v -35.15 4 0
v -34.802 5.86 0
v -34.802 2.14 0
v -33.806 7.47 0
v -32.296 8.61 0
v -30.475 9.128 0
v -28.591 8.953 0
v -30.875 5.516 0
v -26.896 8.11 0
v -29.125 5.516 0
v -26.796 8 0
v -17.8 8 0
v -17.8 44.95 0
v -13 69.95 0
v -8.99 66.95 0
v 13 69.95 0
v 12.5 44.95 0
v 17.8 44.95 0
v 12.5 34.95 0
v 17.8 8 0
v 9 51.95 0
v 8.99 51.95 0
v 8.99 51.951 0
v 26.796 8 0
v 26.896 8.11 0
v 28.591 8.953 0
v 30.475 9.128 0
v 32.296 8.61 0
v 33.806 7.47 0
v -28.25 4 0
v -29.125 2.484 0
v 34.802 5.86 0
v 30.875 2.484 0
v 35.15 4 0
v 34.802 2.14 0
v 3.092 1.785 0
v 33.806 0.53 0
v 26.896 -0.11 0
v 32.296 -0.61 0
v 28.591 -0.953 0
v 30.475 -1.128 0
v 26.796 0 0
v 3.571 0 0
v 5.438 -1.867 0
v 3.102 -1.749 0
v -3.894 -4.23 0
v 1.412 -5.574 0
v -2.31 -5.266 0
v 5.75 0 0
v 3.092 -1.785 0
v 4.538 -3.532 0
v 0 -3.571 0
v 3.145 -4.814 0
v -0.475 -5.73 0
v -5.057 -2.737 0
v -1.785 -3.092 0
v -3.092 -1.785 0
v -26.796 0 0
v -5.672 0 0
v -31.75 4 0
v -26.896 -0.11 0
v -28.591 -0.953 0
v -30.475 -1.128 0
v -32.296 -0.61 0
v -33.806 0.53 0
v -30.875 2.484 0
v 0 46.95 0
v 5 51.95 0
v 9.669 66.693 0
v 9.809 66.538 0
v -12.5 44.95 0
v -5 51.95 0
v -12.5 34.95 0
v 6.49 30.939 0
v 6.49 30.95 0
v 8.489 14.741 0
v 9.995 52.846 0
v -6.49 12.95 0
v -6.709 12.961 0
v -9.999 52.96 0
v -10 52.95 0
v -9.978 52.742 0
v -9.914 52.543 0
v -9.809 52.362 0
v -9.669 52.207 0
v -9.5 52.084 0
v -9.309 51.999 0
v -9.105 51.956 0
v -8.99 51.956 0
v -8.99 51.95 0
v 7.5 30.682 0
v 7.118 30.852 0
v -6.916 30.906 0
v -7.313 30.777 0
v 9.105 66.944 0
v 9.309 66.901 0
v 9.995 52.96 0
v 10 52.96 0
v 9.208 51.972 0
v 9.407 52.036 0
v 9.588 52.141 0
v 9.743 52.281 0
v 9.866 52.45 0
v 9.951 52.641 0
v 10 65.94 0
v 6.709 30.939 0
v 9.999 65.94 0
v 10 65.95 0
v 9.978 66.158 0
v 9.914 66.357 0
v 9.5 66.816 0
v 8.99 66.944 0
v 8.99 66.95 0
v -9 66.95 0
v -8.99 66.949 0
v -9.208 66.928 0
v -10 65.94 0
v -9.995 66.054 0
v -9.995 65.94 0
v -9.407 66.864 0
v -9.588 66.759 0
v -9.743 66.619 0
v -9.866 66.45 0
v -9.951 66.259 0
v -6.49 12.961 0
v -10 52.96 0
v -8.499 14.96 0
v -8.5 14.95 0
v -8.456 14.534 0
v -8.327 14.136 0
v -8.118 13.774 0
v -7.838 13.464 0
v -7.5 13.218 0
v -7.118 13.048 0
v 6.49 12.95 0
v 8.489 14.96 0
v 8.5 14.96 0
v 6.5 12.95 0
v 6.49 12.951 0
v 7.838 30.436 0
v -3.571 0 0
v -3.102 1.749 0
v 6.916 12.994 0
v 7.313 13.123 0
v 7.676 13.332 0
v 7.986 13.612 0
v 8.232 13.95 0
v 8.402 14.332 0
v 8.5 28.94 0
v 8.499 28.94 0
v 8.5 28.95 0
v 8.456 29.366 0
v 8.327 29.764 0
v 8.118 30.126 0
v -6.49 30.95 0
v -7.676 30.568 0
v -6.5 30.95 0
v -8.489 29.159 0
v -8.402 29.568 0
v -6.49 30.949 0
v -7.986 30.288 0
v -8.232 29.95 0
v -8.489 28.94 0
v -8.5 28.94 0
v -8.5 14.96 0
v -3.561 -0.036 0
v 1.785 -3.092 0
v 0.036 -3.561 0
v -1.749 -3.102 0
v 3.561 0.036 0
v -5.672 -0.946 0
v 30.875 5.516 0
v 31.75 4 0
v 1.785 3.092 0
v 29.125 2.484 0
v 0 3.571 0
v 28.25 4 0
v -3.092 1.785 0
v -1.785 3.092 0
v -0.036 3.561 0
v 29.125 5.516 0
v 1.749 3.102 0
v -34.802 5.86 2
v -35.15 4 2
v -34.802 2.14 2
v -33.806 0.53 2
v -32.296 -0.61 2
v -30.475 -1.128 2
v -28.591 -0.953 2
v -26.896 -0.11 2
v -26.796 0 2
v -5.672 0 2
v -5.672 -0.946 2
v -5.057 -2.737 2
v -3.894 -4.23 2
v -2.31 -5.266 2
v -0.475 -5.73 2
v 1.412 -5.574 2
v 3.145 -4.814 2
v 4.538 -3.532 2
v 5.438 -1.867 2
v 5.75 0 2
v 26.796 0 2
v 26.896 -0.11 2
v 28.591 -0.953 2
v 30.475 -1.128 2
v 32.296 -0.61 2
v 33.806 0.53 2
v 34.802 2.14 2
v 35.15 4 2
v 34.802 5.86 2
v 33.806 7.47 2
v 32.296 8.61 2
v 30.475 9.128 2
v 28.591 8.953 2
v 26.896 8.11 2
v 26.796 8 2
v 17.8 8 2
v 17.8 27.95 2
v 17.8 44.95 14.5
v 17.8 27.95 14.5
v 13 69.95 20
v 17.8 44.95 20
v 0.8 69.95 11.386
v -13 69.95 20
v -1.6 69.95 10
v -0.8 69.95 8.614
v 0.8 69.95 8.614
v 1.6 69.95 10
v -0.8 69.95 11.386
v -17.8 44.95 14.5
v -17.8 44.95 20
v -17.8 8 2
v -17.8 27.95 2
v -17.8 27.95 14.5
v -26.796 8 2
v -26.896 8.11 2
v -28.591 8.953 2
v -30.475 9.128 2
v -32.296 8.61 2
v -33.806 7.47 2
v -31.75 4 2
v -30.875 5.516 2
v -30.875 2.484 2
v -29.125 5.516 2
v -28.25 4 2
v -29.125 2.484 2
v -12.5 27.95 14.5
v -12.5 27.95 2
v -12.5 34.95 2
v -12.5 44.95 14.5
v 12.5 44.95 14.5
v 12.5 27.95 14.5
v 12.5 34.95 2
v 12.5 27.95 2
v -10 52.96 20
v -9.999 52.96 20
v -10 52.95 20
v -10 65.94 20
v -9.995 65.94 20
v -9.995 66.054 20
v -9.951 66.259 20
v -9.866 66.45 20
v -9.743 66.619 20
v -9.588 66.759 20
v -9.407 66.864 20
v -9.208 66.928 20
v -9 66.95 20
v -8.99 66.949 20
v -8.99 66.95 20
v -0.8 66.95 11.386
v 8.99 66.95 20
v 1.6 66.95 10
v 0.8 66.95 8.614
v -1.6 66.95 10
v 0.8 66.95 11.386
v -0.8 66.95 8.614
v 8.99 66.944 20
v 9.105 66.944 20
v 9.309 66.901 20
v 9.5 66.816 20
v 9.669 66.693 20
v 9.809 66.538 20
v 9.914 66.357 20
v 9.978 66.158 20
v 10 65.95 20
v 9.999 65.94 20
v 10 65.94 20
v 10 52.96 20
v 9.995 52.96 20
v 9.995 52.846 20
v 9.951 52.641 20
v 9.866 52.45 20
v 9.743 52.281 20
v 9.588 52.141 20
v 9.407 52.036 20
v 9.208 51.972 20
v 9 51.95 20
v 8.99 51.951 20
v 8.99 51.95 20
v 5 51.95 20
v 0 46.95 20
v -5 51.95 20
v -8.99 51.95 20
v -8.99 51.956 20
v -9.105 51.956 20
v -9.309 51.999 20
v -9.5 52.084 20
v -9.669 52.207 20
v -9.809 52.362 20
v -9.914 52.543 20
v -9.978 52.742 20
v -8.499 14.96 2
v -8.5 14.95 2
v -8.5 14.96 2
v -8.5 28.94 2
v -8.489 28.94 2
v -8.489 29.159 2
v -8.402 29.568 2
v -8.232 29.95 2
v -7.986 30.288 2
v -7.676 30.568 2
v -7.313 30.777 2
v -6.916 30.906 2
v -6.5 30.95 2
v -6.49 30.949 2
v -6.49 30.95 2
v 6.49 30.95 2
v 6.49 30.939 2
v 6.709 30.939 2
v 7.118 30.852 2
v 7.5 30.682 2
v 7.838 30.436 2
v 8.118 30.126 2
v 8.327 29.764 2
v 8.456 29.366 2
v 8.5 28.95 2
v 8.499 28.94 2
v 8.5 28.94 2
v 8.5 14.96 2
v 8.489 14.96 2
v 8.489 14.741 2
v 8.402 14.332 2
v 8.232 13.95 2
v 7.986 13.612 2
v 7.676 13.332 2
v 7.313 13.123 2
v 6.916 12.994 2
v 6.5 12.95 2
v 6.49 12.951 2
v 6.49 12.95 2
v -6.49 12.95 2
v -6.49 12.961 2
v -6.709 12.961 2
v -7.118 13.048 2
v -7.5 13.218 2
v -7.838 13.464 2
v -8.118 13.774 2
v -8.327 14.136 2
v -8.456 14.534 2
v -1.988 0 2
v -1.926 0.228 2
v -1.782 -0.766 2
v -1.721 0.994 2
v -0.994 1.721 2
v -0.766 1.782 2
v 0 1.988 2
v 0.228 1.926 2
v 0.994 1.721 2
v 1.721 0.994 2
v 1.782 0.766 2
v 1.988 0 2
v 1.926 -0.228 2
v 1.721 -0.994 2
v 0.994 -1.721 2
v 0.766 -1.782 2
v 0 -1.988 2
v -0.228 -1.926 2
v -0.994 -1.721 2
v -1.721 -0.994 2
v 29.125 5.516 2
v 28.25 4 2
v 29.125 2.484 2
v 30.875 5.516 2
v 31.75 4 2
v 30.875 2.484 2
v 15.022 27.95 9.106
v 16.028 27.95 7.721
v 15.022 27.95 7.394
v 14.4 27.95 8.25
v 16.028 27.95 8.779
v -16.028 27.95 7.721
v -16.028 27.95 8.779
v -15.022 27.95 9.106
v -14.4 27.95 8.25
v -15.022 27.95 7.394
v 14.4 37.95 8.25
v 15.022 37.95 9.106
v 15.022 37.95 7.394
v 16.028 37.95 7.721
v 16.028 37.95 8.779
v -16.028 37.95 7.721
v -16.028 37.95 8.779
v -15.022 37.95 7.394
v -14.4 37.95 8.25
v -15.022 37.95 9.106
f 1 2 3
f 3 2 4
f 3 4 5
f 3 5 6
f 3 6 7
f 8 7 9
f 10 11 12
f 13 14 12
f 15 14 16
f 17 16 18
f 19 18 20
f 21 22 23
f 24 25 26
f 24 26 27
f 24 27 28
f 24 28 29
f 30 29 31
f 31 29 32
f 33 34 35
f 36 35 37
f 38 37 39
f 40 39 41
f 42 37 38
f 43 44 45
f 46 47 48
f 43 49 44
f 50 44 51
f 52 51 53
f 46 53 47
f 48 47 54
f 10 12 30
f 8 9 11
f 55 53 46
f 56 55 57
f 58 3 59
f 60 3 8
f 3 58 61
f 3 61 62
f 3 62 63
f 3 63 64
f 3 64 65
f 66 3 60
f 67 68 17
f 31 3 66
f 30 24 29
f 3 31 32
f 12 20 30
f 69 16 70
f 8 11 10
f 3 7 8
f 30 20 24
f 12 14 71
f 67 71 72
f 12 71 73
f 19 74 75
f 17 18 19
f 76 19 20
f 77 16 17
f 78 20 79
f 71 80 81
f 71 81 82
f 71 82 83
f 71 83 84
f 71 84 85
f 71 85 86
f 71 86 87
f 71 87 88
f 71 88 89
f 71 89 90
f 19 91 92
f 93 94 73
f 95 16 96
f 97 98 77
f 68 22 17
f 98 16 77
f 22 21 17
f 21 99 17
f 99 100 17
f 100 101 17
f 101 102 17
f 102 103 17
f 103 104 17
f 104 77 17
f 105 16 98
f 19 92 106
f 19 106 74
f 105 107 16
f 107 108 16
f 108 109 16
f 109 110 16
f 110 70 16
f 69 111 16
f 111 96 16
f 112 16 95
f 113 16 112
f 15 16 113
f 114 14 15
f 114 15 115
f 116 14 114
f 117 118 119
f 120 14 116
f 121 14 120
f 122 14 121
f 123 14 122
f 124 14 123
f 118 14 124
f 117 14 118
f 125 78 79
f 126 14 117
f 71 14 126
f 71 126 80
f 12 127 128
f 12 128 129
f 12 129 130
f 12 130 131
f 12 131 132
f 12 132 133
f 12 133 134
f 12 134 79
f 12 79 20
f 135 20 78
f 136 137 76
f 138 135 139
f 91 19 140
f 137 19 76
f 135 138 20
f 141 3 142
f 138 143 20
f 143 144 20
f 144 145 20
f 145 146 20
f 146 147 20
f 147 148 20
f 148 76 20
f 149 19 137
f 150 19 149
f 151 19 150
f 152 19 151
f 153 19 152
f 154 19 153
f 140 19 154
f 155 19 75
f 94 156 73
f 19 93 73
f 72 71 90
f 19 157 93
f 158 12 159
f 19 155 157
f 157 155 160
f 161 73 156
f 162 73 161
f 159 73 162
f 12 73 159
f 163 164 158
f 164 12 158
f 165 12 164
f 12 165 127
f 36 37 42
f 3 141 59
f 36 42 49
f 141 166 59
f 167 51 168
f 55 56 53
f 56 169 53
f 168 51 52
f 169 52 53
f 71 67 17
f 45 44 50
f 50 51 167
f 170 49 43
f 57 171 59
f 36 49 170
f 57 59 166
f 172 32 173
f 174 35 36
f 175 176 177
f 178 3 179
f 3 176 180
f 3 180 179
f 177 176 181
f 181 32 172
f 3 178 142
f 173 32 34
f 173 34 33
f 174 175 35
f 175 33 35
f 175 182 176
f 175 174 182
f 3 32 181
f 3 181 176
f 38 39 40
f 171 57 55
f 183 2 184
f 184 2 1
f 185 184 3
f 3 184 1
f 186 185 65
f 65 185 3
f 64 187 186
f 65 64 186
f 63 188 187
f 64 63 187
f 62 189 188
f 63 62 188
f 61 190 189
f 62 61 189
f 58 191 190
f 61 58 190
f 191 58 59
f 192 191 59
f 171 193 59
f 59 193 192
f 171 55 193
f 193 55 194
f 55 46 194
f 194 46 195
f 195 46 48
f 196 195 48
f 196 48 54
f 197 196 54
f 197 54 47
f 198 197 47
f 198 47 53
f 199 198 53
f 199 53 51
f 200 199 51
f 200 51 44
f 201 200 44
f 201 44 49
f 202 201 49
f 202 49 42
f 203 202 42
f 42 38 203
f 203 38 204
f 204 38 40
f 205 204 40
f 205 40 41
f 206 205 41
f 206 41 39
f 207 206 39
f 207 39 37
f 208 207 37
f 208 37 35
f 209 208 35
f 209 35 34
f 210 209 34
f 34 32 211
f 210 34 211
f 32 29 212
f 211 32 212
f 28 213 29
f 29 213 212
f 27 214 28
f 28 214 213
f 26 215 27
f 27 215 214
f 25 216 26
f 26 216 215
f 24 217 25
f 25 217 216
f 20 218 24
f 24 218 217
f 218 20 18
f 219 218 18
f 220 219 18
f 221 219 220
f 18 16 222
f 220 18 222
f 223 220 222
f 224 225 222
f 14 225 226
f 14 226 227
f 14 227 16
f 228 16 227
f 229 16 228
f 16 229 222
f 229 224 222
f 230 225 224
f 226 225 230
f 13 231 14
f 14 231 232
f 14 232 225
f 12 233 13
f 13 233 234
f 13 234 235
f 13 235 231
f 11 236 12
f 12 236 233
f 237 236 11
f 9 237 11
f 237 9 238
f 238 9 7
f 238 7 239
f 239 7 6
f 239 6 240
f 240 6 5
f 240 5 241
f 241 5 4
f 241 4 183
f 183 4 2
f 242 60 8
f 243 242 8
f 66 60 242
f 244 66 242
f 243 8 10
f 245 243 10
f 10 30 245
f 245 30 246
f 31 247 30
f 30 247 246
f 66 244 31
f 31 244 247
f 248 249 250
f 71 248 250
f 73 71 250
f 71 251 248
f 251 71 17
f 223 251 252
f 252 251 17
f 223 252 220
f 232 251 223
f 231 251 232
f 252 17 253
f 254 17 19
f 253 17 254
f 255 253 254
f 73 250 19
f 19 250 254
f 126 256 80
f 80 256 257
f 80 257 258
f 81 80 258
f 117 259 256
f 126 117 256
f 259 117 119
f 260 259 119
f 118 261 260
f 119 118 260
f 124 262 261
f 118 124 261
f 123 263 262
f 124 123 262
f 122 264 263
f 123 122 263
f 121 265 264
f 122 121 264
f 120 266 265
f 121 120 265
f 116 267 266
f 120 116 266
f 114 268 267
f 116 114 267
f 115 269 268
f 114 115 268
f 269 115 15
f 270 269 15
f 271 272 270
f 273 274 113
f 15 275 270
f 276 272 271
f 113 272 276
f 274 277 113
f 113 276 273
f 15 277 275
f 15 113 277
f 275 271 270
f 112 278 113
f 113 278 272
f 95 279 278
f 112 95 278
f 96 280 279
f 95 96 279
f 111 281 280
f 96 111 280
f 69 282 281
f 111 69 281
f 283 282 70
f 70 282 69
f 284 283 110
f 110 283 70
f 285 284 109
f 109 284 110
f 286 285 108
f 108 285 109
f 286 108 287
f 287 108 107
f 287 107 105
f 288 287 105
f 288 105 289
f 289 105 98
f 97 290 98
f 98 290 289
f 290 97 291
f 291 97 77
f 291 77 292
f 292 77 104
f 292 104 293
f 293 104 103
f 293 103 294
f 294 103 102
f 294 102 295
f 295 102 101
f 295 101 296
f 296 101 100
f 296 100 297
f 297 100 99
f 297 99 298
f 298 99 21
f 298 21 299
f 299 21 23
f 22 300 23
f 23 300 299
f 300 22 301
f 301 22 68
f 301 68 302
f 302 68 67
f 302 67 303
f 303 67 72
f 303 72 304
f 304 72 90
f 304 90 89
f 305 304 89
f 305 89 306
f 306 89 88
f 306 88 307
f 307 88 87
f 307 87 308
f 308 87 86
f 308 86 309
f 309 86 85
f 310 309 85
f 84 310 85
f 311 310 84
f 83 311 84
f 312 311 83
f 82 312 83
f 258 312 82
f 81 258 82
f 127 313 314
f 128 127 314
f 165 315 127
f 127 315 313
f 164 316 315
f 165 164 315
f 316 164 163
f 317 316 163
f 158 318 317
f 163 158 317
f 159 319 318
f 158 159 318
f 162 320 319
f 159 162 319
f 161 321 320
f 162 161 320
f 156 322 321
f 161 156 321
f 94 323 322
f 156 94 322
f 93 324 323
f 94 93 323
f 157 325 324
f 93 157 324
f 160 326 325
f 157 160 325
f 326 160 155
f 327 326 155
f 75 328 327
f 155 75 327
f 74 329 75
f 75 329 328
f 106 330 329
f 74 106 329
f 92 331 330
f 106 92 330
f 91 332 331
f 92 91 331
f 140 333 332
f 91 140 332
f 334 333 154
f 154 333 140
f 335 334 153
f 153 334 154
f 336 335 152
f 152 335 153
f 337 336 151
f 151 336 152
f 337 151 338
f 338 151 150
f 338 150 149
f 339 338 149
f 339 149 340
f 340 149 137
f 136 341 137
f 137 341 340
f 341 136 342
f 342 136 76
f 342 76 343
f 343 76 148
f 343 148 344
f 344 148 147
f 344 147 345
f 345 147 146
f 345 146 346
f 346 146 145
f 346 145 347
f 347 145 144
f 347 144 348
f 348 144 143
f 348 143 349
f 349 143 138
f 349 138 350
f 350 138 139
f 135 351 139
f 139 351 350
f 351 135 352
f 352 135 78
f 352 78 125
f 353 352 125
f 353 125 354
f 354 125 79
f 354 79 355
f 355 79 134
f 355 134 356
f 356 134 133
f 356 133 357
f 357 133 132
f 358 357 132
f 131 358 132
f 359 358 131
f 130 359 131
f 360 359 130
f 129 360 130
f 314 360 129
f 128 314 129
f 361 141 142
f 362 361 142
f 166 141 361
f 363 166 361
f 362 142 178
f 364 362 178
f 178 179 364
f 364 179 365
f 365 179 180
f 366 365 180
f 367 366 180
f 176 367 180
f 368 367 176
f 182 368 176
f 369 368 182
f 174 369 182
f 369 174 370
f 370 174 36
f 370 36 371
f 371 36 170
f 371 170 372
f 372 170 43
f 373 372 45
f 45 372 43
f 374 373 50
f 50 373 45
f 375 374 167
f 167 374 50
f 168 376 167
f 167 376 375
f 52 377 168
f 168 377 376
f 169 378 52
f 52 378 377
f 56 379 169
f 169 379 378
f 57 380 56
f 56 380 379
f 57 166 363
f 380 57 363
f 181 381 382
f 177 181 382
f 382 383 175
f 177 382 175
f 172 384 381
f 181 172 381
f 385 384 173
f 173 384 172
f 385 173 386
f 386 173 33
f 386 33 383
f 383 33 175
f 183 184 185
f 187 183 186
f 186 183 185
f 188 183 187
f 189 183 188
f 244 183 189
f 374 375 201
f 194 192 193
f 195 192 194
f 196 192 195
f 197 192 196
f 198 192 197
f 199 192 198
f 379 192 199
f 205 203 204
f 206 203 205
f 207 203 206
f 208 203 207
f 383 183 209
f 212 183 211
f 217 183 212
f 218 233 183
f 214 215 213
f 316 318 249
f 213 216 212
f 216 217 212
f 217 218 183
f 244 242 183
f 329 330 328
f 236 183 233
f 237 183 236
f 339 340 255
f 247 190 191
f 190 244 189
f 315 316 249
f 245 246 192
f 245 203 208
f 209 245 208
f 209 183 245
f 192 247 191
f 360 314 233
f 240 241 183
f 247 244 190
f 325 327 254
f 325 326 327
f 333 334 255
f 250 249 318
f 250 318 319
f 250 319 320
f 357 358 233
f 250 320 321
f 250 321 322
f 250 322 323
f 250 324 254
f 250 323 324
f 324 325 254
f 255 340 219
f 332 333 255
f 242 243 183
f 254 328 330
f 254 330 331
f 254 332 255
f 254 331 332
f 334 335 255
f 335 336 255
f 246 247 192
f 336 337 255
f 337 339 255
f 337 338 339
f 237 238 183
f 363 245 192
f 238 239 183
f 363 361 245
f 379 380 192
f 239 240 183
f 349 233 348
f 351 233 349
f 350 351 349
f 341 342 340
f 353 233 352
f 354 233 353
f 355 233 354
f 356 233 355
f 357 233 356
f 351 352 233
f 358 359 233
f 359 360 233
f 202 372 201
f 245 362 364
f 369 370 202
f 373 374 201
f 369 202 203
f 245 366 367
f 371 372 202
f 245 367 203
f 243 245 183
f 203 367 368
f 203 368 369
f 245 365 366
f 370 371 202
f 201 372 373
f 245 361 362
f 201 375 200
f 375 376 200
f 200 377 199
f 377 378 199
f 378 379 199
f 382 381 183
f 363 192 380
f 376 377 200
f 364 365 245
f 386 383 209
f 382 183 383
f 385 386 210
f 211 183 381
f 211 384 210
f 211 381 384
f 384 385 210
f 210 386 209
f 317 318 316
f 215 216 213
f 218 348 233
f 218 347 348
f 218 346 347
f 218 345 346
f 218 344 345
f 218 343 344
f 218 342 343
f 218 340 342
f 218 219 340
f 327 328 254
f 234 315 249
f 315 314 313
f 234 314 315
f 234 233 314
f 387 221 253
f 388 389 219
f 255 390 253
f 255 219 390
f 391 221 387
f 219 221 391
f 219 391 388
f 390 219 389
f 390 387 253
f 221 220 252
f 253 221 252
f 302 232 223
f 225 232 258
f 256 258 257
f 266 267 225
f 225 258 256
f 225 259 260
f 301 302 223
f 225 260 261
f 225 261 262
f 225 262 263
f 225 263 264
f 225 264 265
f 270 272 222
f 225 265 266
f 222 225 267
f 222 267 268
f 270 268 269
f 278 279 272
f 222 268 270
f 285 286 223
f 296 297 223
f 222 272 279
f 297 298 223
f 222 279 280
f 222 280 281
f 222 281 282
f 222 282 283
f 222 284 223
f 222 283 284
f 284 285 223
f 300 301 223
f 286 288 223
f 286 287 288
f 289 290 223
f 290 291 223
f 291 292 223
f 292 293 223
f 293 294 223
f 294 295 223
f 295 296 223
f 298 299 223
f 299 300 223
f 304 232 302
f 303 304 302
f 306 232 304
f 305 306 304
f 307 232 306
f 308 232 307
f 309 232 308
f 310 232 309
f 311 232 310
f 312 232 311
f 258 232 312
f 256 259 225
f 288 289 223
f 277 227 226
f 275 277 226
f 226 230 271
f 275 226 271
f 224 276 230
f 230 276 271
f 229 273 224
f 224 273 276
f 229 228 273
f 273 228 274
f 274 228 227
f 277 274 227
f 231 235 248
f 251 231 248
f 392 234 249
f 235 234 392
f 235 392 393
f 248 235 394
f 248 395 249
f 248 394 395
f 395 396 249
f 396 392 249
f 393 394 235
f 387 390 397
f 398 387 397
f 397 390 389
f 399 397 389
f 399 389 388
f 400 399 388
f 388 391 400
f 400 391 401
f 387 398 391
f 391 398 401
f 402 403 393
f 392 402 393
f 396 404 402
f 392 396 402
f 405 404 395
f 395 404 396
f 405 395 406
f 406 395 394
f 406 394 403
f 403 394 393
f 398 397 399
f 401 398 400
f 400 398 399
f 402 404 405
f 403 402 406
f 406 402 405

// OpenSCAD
// file: thirdparty/RoundedRect.scad
// ********************************
// Copyright 2015 Ethan Smith
// ********************************

include <CornerCutout.scad>

module RoundedRect(x = 10, y = 10, z = 10, radius = 2) {
	translate([-x/2, -y/2]) difference() {
		cube([x, y, z]);
		translate([0,0]) CornerCutout(0, z, radius);
		translate([x,0]) CornerCutout(1, z, radius);
		translate([x,y]) CornerCutout(2, z, radius);
		translate([0,y]) CornerCutout(3, z, radius);
	}
}
// file: thirdparty/CornerCutout.scad
// ********************************
// Copyright 2015 Ethan Smith
// ********************************

module CornerCutout(direction = 0, thickness = 10, radius = 4, extra = 0.4, cutin = 0.01, smooth=30, cylinderExtra = 0) {
	rotate([0,0,direction*90]) difference() {
		translate([-extra,-extra, -extra*2]) cube([radius+extra+cutin, radius+extra+cutin, thickness+extra*4]);
		translate([radius, radius, -extra-cylinderExtra/2]) cylinder(thickness+extra*2+cylinderExtra, radius, radius, $fn=smooth);
	}
}
// main file
include <thirdparty/CornerCutout.scad>;
include <thirdparty/RoundedRect.scad>;

baseThickness = 2;
cornerRadius = 3;

supportArmWidth = 8;
supportArmLength = 30;
supportArmThickness = 2;
supportArmPadExtra = 3.4;
supportArmPadBolt = 3.5;


numSixCountersinkBoltSize = 3.5;
numSixCountersinkHeadDiameter = 7.3;
numSixCountersinkDepth = 2.3;


chainClampBoltDiameter = numSixCountersinkBoltSize;
chainClampBoltExtra = 4;
chainClampBoltMountSideSpace = 1;
chainClampAttachDiameter = chainClampBoltDiameter+chainClampBoltExtra*2;

chainNotchDiameter = 3.5;
chainNotchCurveDiameter = 42;
chainNotchShift = 1;

chainAttachEdge = 2;
chainAttachGap = 0.2;
chainAttachDiameter = chainClampAttachDiameter+chainAttachGap*2+chainAttachEdge*2;
chainAttachThicknessExtra = 1.3;
chainAttachThickness = chainNotchDiameter-chainNotchShift+chainAttachThicknessExtra;
chainAttachLipLength = chainAttachDiameter/2-chainAttachGap;
chainAttachLipHeight = baseThickness+chainNotchShift;
chainAttachTotalHeight = chainAttachThickness+chainAttachLipHeight;

penClampBoltDiameter = 3.2;

penHoleSize = 20;
penClampExtra = 3;
penClampHeight = 20;
penClampWallThickness = 3;
penClampBackingMinThickness = 2;
penClampDimple = 5;
penClampLength = penHoleSize+penClampWallThickness+penClampBackingMinThickness;
penClampWidth = penHoleSize+penClampWallThickness*2;

servoWidth = 25;
servoHeight = 26;
servoThickness = 12.5;
servoTabWidth = 5.3;
servoTabDrop = 7;
servoCutoutEdgeExtra = 4;
servoMountCutoutHeight = 10;
servoTabMountThickness = servoThickness;
servoTabMountLength = servoMountCutoutHeight+servoTabDrop;
servoMountScrewDiameter = 1.8;
servoMountScrewDepth = 10;
servoMountScrewFromInside = 2.8;



baseWidth = servoWidth+servoTabWidth*2;
baseLength = chainClampBoltMountSideSpace+chainAttachDiameter/2+servoHeight+servoMountCutoutHeight;
baseServoMountThickness = servoTabMountThickness+baseThickness;
totalLength = baseLength+penClampLength;

servoCutoutWidth = baseWidth-servoCutoutEdgeExtra*2-servoTabWidth*2;
servoCutoutLength = servoHeight-servoCutoutEdgeExtra*2;

frame();
//chainAttach();
//print();

module print() {
	frame();
	translate([0,0,chainAttachTotalHeight]) rotate([0,180]) chainAttach();
	#translate([-servoWidth/2, baseLength-servoHeight-servoMountCutoutHeight, baseThickness]) cube([servoWidth, servoHeight, servoThickness]);
}

module chainAttach() {
	difference() {
		union() {
			cylinder(chainAttachTotalHeight, chainAttachDiameter/2, chainAttachDiameter/2, $fn=50);
			translate([-chainAttachDiameter/2-0.005, 0,-0.005]) cube([chainAttachDiameter+0.01, chainAttachDiameter/2+0.01, chainAttachThickness]);
		}	
		translate([0,0,chainAttachThickness]) cylinder(baseThickness+1+chainNotchShift, chainAttachDiameter/2-chainAttachEdge, chainAttachDiameter/2-chainAttachEdge);
	
		translate([-chainAttachDiameter/2-1, -chainAttachDiameter/2+chainAttachLipLength, chainAttachThickness+0.01]) cube([chainAttachDiameter+2, chainAttachDiameter-chainAttachLipLength+1, chainAttachLipHeight+1]);

		translate([0,0,-1]) cylinder(chainAttachThickness+2, chainClampBoltDiameter/2, chainClampBoltDiameter/2, $fn=30);

		translate([0, -chainNotchCurveDiameter/2+chainClampBoltDiameter/2+chainNotchDiameter/2, chainAttachThickness-chainNotchDiameter/2+chainNotchShift]) rotate_extrude(convexity = 4) translate([chainNotchCurveDiameter/2, 0, 0]) circle(r = chainNotchDiameter/2, $fn=20);

		translate([-chainAttachDiameter/2, chainAttachDiameter/2]) CornerCutout(3, chainAttachThickness, cornerRadius);
		translate([chainAttachDiameter/2, chainAttachDiameter/2]) CornerCutout(2, chainAttachThickness, cornerRadius);

	}
}

module frame() {
	difference() {
		union() { 
			supportArms();
			attachPoint();
			centerShape();
		}
		translate([0, baseLength+penClampBackingMinThickness, -1]) penClampShape(penHoleSize, penClampHeight+2, penClampDimple);
		
		translate([0, totalLength+1, penClampHeight/2]) rotate([90,0]) cylinder(penClampWallThickness+2, penClampBoltDiameter/2, penClampBoltDiameter/2);
		
		mirror([0,0,1]) counterSunkBolt(baseThickness-numSixCountersinkDepth, numSixCountersinkBoltSize, numSixCountersinkHeadDiameter, numSixCountersinkDepth);

		translate([0, baseLength-servoMountCutoutHeight-servoCutoutLength/2-servoCutoutEdgeExtra, -1]) RoundedRect(servoCutoutWidth, servoCutoutLength, baseThickness+2, 2);
	}
}

module centerShape() {
	translate([-baseWidth/2, 0]) cube([baseWidth, baseLength-servoMountCutoutHeight, baseThickness]);
	translate([-baseWidth/2, baseLength-servoTabMountLength]) servoAttachTab();
	translate([baseWidth/2, baseLength-servoTabMountLength]) mirror([1,0]) servoAttachTab();

	
	translate([-baseWidth/2, baseLength]) linear_extrude(height = penClampHeight) assign(halfSize = (baseWidth-penClampWidth)/2) polygon([[0, 0], [baseWidth, 0], [baseWidth-halfSize, penClampLength], [halfSize, penClampLength]]);
}

module servoAttachTab() {
	difference() {
		cube([servoTabWidth, servoTabMountLength, baseServoMountThickness]);
	
		translate([servoTabWidth-servoMountScrewFromInside, -1, servoThickness/2+baseThickness])  rotate([-90,0]) cylinder(servoMountScrewDepth+1, servoMountScrewDiameter/2, servoMountScrewDiameter/2);

	}
}

module attachPoint() {
	cylinder(baseThickness, chainClampAttachDiameter/2, chainClampAttachDiameter/2);
} 

module supportArms() {
	translate([0,supportArmWidth/2]) {
		supportArm(supportArmWidth, supportArmLength, supportArmThickness, supportArmPadBolt, supportArmPadExtra);

		mirror([1,0]) 
		supportArm(supportArmWidth, supportArmLength, supportArmThickness, supportArmPadBolt, supportArmPadExtra);
	}
}
 
module supportArm(width, length, thickness, boltDiameter, padExtra) {
	difference() {
		union() {
			translate([0, -width/2]) cube([length, width, thickness]);
			translate([length, 0]) cylinder(thickness, boltDiameter/2+padExtra, boltDiameter/2+padExtra);
		}

		translate([length, 0, -1]) cylinder(thickness+2, boltDiameter/2, boltDiameter/2);
	}
}

module penClampShape(size, height, dimpleDepth) {
	translate([0, dimpleDepth]) { 
		assign(length = size-dimpleDepth) translate([0, length/2]) RoundedRect(size, length, height, 1);
		rotate([0,0,45]) assign(diamond = sqrt(((dimpleDepth*2)*(dimpleDepth*2))/2)) translate([-diamond/2, -diamond/2]) cube([diamond, diamond, height]);
	}
}

module counterSunkBolt(boltLength, boltDiameter, headDiameter, headHeight, extra=0.1) {
	translate([0,0,-headHeight-boltLength-extra]) cylinder(boltLength+extra*2, boltDiameter/2, boltDiameter/2);
	translate([0,0,-headHeight]) cylinder(headHeight+extra, boltDiameter/2, headDiameter/2);
}
